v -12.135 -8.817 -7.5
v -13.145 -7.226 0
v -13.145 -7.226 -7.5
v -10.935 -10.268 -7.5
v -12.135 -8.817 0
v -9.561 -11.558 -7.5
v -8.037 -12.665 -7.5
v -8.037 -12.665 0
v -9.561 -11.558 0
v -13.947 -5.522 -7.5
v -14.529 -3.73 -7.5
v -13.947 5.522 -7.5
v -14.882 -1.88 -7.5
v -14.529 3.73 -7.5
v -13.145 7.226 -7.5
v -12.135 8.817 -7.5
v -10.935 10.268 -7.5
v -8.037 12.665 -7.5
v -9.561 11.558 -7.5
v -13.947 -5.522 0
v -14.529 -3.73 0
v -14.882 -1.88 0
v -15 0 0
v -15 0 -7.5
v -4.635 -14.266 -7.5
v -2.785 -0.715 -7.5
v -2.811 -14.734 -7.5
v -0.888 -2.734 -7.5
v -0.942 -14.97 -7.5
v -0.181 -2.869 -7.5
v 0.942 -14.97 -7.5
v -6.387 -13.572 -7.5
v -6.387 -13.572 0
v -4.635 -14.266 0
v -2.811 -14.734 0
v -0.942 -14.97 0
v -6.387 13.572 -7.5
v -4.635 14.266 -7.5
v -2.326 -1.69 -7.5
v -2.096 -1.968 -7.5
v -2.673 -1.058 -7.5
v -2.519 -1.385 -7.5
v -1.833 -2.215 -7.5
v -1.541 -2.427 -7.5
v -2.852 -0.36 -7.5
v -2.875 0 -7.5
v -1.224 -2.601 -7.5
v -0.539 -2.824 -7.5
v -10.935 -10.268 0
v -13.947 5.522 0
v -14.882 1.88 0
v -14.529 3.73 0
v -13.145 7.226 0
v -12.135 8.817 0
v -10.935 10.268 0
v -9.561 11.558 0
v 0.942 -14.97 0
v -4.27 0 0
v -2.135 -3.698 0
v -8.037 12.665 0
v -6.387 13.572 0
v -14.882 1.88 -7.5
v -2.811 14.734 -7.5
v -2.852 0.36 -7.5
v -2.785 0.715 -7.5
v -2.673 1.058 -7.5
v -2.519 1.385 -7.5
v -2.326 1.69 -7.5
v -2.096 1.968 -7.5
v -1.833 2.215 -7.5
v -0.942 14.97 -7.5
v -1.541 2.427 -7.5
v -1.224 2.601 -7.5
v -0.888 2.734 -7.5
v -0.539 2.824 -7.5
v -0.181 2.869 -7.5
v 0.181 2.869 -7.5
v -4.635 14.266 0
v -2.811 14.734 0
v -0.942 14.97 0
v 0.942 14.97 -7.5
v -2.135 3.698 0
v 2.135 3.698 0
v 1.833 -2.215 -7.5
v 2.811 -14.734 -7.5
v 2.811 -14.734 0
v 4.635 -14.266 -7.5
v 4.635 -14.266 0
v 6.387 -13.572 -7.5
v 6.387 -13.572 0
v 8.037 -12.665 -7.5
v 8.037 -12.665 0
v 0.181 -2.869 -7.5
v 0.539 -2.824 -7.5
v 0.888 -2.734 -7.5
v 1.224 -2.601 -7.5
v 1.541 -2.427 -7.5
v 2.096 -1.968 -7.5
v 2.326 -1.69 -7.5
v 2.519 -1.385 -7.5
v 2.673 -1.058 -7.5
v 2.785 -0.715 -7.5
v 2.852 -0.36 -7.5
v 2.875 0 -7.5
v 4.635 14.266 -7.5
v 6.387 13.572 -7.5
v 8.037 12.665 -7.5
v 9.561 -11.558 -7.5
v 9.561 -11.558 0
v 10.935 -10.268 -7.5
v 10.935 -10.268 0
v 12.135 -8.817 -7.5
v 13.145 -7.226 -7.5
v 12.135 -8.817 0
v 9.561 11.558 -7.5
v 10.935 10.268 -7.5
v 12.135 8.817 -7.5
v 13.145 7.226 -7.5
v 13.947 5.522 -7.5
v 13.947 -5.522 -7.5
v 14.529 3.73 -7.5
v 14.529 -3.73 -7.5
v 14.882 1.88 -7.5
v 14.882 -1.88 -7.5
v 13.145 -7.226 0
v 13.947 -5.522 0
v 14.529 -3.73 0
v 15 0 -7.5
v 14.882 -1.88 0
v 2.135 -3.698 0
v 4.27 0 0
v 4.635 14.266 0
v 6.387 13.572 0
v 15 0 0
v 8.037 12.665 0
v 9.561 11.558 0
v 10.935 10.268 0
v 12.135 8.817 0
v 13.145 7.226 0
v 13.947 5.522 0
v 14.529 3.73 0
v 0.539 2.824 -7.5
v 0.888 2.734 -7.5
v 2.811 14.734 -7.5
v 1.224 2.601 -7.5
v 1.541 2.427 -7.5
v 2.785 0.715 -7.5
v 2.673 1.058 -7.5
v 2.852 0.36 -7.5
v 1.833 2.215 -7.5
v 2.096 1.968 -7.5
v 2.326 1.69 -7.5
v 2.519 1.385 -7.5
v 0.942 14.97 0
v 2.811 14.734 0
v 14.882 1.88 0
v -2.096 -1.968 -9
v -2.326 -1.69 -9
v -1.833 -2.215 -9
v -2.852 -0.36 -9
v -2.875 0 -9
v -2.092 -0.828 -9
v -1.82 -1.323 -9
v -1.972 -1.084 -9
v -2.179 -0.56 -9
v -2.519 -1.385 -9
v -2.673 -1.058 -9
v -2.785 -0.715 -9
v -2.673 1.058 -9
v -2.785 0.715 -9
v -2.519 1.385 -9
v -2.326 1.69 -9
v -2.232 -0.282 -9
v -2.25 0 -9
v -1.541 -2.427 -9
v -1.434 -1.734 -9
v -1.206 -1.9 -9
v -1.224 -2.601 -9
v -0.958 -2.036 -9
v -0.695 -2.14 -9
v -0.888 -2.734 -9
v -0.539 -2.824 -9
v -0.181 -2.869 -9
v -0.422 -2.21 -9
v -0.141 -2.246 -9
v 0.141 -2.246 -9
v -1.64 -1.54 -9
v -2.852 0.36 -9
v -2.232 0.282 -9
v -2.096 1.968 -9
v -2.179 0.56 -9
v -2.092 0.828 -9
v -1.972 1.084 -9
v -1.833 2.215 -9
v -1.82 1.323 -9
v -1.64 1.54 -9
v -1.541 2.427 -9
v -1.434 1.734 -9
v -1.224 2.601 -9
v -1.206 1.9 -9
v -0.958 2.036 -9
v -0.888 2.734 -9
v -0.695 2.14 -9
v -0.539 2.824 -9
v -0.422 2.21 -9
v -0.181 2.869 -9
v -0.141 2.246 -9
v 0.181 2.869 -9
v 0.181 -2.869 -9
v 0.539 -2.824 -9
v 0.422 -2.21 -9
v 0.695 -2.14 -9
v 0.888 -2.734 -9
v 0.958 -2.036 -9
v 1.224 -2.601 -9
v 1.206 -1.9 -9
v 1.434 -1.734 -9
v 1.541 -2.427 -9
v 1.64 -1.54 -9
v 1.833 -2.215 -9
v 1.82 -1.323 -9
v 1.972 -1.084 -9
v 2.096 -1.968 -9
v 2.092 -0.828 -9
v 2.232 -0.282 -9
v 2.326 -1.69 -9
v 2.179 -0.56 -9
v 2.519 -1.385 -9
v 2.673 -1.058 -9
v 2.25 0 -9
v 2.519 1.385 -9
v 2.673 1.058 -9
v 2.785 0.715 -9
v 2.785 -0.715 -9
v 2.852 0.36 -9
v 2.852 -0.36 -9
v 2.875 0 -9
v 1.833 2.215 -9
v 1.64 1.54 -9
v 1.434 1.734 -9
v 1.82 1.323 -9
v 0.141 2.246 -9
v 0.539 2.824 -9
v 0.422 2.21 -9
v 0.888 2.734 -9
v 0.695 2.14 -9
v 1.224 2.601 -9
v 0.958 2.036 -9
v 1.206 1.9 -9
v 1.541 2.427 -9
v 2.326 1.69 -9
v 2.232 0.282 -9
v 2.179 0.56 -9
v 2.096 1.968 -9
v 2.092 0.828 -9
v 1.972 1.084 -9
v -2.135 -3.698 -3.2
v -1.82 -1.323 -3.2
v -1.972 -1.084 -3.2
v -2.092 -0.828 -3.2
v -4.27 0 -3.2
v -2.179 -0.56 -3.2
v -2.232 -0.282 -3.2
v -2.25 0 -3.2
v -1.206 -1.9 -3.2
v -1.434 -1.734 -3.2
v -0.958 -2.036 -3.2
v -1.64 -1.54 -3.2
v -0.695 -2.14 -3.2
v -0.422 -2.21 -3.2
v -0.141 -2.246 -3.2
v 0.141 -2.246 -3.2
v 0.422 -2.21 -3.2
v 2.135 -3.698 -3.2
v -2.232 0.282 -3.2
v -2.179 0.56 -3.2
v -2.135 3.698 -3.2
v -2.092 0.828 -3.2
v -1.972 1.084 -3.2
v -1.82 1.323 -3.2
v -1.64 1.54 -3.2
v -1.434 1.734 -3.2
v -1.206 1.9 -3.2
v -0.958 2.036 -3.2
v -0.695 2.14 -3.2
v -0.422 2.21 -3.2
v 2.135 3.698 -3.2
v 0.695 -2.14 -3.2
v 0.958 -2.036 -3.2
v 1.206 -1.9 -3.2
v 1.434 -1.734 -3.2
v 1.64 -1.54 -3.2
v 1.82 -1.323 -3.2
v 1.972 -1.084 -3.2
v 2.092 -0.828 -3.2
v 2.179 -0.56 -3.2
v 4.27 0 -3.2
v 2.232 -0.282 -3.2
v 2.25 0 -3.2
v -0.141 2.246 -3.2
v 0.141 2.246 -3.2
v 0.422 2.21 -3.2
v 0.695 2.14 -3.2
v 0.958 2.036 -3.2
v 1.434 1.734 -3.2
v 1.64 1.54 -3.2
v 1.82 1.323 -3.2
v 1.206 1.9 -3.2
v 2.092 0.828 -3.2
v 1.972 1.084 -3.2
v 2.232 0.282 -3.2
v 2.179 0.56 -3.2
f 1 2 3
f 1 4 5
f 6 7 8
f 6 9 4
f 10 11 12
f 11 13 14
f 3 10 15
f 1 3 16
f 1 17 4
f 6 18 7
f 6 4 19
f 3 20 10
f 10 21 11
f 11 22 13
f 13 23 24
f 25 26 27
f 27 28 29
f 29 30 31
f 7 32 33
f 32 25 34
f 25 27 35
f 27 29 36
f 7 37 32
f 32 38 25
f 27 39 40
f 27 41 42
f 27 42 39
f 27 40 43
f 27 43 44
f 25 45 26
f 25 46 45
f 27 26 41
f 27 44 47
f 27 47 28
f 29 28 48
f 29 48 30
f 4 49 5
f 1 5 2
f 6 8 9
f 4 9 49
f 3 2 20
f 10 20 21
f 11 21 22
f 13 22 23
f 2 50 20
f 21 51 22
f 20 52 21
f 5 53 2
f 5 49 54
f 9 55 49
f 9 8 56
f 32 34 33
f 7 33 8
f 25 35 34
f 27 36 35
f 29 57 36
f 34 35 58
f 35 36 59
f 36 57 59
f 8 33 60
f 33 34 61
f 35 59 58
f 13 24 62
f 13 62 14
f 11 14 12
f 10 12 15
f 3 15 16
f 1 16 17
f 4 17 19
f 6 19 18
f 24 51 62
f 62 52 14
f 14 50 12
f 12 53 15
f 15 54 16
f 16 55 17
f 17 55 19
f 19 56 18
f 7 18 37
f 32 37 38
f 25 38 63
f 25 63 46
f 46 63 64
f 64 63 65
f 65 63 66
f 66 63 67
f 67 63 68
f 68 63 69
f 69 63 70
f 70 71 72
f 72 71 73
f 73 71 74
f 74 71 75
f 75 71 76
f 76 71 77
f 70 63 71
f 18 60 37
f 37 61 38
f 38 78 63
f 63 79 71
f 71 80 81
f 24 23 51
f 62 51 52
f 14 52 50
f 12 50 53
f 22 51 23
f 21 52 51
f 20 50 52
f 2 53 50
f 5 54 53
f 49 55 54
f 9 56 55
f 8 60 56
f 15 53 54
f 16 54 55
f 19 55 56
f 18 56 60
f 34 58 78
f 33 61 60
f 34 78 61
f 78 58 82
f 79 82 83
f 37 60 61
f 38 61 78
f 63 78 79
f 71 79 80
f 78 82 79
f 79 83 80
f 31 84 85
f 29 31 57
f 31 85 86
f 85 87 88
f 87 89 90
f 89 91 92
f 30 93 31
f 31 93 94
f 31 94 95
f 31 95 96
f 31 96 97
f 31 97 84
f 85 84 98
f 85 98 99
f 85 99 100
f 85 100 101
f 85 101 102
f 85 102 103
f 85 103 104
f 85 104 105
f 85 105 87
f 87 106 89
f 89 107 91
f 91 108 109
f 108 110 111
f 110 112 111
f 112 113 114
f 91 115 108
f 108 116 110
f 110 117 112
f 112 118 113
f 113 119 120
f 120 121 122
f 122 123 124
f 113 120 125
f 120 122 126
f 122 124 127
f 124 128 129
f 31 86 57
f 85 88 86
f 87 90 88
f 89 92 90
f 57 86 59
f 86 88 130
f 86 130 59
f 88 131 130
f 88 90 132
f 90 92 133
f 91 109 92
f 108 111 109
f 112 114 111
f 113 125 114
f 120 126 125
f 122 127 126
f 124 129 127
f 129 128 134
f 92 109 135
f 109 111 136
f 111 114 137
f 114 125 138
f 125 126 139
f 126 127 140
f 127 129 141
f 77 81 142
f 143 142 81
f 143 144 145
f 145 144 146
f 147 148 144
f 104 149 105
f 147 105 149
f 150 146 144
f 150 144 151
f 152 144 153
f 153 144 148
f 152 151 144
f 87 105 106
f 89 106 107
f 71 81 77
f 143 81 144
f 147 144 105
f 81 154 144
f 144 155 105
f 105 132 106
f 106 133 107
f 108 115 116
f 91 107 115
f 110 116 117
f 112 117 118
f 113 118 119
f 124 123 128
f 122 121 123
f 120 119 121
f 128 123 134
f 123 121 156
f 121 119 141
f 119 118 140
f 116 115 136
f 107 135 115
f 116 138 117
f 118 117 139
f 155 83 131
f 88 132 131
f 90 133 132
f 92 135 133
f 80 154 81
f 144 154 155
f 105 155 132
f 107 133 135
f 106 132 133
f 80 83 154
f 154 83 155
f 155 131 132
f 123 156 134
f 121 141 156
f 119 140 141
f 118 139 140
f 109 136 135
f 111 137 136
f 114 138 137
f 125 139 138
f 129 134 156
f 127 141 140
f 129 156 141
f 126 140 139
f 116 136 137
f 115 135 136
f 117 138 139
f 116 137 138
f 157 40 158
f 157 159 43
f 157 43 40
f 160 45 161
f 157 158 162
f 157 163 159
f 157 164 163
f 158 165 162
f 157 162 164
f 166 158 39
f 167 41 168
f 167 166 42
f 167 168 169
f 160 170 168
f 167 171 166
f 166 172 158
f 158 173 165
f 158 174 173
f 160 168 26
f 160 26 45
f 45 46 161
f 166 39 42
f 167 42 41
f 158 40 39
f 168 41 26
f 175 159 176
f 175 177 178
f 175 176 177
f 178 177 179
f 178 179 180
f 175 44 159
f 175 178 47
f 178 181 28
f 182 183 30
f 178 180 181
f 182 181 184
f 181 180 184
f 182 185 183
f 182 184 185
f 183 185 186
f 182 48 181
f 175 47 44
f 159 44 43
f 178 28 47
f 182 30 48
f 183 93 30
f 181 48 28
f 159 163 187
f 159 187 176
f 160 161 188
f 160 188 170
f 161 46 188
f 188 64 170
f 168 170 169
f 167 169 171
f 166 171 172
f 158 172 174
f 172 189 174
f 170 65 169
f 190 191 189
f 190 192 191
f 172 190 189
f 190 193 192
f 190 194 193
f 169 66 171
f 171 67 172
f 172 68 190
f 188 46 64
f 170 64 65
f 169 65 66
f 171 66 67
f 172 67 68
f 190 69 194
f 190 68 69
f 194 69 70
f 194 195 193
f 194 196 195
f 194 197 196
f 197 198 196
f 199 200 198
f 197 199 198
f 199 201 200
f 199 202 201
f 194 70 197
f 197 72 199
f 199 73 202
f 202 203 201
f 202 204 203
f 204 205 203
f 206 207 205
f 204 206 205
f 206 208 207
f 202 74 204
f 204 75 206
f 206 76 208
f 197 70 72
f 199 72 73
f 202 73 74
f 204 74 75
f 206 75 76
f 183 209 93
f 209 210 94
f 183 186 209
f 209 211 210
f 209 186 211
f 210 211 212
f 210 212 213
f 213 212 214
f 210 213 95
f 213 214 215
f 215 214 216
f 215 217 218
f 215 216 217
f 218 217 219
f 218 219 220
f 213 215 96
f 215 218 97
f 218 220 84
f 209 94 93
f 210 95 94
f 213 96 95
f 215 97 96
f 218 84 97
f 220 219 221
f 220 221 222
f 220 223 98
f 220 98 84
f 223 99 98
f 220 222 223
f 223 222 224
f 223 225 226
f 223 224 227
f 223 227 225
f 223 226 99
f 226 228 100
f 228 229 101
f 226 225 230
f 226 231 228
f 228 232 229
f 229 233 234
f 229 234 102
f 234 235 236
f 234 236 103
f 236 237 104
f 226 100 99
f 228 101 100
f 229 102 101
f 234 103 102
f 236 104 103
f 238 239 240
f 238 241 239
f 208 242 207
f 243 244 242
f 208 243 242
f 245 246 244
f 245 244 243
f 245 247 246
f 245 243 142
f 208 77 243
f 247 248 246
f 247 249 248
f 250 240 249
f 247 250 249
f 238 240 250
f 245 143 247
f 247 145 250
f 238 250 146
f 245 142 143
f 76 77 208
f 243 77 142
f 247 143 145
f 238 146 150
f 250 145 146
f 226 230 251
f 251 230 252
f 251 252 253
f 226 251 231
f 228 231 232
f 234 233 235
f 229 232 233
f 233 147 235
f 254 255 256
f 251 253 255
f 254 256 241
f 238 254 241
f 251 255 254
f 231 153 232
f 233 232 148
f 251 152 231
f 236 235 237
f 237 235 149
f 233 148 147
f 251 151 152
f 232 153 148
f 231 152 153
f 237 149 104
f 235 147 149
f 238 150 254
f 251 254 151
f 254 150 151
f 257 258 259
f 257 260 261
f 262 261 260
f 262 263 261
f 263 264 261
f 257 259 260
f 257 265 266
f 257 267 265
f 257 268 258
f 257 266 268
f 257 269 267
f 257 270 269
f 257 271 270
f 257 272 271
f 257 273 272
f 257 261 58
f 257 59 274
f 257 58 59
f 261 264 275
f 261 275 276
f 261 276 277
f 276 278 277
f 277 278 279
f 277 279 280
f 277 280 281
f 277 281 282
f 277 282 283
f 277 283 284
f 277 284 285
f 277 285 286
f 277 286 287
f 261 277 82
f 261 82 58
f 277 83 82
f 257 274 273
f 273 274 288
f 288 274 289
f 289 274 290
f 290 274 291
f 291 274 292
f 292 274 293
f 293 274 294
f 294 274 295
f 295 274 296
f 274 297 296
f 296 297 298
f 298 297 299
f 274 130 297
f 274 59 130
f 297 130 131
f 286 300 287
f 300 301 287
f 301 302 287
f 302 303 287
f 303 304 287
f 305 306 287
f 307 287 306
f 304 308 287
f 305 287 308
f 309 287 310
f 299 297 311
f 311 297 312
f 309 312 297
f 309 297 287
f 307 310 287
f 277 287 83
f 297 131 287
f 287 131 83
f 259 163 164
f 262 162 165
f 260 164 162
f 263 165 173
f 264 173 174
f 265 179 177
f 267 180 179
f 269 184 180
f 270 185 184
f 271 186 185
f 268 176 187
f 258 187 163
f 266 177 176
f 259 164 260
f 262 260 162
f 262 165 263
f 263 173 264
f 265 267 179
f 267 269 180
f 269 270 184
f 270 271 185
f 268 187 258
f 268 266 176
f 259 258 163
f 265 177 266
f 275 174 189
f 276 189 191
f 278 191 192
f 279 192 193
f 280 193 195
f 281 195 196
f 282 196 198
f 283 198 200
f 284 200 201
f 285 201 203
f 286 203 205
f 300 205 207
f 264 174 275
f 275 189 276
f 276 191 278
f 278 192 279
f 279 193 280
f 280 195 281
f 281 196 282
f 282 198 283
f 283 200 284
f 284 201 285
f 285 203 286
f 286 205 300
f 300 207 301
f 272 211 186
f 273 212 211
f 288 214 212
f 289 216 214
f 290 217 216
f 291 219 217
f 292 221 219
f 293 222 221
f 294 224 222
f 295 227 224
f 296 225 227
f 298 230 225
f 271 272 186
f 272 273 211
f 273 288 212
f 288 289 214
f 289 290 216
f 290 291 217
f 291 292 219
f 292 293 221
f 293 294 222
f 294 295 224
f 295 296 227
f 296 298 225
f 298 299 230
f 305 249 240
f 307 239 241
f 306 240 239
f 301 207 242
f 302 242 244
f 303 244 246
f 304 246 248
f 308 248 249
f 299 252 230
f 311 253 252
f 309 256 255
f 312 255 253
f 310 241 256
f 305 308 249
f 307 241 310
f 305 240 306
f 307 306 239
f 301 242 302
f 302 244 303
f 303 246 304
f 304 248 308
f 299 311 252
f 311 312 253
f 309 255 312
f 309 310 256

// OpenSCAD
$fn = 50;


difference() {
	union() {
		translate(v = [0, 0, -7.5000000000]) {
			cylinder(h = 7.5000000000, r = 15.0000000000);
		}
		#translate(v = [0, 0, -9.0000000000]) {
			cylinder(h = 9, r = 2.8750000000);
		}
	}
	union() {
		translate(v = [0, 0, 0]) {
			rotate(a = [0, 0, 0]) {
				difference() {
					union() {
						translate(v = [0, 0, -3.2000000000]) {
							linear_extrude(height = 3.2000000000) {
								polygon(points = [[4.2698000000, 0.0000000000], [2.1349000000, 3.6977552691], [-2.1349000000, 3.6977552691], [-4.2698000000, 0.0000000000], [-2.1349000000, -3.6977552691], [2.1349000000, -3.6977552691]]);
							}
						}
					}
					union();
				}
			}
		}
		#translate(v = [0, 0, -100.0000000000]) {
			cylinder(h = 200, r = 2.2500000000);
		}
	}
}
